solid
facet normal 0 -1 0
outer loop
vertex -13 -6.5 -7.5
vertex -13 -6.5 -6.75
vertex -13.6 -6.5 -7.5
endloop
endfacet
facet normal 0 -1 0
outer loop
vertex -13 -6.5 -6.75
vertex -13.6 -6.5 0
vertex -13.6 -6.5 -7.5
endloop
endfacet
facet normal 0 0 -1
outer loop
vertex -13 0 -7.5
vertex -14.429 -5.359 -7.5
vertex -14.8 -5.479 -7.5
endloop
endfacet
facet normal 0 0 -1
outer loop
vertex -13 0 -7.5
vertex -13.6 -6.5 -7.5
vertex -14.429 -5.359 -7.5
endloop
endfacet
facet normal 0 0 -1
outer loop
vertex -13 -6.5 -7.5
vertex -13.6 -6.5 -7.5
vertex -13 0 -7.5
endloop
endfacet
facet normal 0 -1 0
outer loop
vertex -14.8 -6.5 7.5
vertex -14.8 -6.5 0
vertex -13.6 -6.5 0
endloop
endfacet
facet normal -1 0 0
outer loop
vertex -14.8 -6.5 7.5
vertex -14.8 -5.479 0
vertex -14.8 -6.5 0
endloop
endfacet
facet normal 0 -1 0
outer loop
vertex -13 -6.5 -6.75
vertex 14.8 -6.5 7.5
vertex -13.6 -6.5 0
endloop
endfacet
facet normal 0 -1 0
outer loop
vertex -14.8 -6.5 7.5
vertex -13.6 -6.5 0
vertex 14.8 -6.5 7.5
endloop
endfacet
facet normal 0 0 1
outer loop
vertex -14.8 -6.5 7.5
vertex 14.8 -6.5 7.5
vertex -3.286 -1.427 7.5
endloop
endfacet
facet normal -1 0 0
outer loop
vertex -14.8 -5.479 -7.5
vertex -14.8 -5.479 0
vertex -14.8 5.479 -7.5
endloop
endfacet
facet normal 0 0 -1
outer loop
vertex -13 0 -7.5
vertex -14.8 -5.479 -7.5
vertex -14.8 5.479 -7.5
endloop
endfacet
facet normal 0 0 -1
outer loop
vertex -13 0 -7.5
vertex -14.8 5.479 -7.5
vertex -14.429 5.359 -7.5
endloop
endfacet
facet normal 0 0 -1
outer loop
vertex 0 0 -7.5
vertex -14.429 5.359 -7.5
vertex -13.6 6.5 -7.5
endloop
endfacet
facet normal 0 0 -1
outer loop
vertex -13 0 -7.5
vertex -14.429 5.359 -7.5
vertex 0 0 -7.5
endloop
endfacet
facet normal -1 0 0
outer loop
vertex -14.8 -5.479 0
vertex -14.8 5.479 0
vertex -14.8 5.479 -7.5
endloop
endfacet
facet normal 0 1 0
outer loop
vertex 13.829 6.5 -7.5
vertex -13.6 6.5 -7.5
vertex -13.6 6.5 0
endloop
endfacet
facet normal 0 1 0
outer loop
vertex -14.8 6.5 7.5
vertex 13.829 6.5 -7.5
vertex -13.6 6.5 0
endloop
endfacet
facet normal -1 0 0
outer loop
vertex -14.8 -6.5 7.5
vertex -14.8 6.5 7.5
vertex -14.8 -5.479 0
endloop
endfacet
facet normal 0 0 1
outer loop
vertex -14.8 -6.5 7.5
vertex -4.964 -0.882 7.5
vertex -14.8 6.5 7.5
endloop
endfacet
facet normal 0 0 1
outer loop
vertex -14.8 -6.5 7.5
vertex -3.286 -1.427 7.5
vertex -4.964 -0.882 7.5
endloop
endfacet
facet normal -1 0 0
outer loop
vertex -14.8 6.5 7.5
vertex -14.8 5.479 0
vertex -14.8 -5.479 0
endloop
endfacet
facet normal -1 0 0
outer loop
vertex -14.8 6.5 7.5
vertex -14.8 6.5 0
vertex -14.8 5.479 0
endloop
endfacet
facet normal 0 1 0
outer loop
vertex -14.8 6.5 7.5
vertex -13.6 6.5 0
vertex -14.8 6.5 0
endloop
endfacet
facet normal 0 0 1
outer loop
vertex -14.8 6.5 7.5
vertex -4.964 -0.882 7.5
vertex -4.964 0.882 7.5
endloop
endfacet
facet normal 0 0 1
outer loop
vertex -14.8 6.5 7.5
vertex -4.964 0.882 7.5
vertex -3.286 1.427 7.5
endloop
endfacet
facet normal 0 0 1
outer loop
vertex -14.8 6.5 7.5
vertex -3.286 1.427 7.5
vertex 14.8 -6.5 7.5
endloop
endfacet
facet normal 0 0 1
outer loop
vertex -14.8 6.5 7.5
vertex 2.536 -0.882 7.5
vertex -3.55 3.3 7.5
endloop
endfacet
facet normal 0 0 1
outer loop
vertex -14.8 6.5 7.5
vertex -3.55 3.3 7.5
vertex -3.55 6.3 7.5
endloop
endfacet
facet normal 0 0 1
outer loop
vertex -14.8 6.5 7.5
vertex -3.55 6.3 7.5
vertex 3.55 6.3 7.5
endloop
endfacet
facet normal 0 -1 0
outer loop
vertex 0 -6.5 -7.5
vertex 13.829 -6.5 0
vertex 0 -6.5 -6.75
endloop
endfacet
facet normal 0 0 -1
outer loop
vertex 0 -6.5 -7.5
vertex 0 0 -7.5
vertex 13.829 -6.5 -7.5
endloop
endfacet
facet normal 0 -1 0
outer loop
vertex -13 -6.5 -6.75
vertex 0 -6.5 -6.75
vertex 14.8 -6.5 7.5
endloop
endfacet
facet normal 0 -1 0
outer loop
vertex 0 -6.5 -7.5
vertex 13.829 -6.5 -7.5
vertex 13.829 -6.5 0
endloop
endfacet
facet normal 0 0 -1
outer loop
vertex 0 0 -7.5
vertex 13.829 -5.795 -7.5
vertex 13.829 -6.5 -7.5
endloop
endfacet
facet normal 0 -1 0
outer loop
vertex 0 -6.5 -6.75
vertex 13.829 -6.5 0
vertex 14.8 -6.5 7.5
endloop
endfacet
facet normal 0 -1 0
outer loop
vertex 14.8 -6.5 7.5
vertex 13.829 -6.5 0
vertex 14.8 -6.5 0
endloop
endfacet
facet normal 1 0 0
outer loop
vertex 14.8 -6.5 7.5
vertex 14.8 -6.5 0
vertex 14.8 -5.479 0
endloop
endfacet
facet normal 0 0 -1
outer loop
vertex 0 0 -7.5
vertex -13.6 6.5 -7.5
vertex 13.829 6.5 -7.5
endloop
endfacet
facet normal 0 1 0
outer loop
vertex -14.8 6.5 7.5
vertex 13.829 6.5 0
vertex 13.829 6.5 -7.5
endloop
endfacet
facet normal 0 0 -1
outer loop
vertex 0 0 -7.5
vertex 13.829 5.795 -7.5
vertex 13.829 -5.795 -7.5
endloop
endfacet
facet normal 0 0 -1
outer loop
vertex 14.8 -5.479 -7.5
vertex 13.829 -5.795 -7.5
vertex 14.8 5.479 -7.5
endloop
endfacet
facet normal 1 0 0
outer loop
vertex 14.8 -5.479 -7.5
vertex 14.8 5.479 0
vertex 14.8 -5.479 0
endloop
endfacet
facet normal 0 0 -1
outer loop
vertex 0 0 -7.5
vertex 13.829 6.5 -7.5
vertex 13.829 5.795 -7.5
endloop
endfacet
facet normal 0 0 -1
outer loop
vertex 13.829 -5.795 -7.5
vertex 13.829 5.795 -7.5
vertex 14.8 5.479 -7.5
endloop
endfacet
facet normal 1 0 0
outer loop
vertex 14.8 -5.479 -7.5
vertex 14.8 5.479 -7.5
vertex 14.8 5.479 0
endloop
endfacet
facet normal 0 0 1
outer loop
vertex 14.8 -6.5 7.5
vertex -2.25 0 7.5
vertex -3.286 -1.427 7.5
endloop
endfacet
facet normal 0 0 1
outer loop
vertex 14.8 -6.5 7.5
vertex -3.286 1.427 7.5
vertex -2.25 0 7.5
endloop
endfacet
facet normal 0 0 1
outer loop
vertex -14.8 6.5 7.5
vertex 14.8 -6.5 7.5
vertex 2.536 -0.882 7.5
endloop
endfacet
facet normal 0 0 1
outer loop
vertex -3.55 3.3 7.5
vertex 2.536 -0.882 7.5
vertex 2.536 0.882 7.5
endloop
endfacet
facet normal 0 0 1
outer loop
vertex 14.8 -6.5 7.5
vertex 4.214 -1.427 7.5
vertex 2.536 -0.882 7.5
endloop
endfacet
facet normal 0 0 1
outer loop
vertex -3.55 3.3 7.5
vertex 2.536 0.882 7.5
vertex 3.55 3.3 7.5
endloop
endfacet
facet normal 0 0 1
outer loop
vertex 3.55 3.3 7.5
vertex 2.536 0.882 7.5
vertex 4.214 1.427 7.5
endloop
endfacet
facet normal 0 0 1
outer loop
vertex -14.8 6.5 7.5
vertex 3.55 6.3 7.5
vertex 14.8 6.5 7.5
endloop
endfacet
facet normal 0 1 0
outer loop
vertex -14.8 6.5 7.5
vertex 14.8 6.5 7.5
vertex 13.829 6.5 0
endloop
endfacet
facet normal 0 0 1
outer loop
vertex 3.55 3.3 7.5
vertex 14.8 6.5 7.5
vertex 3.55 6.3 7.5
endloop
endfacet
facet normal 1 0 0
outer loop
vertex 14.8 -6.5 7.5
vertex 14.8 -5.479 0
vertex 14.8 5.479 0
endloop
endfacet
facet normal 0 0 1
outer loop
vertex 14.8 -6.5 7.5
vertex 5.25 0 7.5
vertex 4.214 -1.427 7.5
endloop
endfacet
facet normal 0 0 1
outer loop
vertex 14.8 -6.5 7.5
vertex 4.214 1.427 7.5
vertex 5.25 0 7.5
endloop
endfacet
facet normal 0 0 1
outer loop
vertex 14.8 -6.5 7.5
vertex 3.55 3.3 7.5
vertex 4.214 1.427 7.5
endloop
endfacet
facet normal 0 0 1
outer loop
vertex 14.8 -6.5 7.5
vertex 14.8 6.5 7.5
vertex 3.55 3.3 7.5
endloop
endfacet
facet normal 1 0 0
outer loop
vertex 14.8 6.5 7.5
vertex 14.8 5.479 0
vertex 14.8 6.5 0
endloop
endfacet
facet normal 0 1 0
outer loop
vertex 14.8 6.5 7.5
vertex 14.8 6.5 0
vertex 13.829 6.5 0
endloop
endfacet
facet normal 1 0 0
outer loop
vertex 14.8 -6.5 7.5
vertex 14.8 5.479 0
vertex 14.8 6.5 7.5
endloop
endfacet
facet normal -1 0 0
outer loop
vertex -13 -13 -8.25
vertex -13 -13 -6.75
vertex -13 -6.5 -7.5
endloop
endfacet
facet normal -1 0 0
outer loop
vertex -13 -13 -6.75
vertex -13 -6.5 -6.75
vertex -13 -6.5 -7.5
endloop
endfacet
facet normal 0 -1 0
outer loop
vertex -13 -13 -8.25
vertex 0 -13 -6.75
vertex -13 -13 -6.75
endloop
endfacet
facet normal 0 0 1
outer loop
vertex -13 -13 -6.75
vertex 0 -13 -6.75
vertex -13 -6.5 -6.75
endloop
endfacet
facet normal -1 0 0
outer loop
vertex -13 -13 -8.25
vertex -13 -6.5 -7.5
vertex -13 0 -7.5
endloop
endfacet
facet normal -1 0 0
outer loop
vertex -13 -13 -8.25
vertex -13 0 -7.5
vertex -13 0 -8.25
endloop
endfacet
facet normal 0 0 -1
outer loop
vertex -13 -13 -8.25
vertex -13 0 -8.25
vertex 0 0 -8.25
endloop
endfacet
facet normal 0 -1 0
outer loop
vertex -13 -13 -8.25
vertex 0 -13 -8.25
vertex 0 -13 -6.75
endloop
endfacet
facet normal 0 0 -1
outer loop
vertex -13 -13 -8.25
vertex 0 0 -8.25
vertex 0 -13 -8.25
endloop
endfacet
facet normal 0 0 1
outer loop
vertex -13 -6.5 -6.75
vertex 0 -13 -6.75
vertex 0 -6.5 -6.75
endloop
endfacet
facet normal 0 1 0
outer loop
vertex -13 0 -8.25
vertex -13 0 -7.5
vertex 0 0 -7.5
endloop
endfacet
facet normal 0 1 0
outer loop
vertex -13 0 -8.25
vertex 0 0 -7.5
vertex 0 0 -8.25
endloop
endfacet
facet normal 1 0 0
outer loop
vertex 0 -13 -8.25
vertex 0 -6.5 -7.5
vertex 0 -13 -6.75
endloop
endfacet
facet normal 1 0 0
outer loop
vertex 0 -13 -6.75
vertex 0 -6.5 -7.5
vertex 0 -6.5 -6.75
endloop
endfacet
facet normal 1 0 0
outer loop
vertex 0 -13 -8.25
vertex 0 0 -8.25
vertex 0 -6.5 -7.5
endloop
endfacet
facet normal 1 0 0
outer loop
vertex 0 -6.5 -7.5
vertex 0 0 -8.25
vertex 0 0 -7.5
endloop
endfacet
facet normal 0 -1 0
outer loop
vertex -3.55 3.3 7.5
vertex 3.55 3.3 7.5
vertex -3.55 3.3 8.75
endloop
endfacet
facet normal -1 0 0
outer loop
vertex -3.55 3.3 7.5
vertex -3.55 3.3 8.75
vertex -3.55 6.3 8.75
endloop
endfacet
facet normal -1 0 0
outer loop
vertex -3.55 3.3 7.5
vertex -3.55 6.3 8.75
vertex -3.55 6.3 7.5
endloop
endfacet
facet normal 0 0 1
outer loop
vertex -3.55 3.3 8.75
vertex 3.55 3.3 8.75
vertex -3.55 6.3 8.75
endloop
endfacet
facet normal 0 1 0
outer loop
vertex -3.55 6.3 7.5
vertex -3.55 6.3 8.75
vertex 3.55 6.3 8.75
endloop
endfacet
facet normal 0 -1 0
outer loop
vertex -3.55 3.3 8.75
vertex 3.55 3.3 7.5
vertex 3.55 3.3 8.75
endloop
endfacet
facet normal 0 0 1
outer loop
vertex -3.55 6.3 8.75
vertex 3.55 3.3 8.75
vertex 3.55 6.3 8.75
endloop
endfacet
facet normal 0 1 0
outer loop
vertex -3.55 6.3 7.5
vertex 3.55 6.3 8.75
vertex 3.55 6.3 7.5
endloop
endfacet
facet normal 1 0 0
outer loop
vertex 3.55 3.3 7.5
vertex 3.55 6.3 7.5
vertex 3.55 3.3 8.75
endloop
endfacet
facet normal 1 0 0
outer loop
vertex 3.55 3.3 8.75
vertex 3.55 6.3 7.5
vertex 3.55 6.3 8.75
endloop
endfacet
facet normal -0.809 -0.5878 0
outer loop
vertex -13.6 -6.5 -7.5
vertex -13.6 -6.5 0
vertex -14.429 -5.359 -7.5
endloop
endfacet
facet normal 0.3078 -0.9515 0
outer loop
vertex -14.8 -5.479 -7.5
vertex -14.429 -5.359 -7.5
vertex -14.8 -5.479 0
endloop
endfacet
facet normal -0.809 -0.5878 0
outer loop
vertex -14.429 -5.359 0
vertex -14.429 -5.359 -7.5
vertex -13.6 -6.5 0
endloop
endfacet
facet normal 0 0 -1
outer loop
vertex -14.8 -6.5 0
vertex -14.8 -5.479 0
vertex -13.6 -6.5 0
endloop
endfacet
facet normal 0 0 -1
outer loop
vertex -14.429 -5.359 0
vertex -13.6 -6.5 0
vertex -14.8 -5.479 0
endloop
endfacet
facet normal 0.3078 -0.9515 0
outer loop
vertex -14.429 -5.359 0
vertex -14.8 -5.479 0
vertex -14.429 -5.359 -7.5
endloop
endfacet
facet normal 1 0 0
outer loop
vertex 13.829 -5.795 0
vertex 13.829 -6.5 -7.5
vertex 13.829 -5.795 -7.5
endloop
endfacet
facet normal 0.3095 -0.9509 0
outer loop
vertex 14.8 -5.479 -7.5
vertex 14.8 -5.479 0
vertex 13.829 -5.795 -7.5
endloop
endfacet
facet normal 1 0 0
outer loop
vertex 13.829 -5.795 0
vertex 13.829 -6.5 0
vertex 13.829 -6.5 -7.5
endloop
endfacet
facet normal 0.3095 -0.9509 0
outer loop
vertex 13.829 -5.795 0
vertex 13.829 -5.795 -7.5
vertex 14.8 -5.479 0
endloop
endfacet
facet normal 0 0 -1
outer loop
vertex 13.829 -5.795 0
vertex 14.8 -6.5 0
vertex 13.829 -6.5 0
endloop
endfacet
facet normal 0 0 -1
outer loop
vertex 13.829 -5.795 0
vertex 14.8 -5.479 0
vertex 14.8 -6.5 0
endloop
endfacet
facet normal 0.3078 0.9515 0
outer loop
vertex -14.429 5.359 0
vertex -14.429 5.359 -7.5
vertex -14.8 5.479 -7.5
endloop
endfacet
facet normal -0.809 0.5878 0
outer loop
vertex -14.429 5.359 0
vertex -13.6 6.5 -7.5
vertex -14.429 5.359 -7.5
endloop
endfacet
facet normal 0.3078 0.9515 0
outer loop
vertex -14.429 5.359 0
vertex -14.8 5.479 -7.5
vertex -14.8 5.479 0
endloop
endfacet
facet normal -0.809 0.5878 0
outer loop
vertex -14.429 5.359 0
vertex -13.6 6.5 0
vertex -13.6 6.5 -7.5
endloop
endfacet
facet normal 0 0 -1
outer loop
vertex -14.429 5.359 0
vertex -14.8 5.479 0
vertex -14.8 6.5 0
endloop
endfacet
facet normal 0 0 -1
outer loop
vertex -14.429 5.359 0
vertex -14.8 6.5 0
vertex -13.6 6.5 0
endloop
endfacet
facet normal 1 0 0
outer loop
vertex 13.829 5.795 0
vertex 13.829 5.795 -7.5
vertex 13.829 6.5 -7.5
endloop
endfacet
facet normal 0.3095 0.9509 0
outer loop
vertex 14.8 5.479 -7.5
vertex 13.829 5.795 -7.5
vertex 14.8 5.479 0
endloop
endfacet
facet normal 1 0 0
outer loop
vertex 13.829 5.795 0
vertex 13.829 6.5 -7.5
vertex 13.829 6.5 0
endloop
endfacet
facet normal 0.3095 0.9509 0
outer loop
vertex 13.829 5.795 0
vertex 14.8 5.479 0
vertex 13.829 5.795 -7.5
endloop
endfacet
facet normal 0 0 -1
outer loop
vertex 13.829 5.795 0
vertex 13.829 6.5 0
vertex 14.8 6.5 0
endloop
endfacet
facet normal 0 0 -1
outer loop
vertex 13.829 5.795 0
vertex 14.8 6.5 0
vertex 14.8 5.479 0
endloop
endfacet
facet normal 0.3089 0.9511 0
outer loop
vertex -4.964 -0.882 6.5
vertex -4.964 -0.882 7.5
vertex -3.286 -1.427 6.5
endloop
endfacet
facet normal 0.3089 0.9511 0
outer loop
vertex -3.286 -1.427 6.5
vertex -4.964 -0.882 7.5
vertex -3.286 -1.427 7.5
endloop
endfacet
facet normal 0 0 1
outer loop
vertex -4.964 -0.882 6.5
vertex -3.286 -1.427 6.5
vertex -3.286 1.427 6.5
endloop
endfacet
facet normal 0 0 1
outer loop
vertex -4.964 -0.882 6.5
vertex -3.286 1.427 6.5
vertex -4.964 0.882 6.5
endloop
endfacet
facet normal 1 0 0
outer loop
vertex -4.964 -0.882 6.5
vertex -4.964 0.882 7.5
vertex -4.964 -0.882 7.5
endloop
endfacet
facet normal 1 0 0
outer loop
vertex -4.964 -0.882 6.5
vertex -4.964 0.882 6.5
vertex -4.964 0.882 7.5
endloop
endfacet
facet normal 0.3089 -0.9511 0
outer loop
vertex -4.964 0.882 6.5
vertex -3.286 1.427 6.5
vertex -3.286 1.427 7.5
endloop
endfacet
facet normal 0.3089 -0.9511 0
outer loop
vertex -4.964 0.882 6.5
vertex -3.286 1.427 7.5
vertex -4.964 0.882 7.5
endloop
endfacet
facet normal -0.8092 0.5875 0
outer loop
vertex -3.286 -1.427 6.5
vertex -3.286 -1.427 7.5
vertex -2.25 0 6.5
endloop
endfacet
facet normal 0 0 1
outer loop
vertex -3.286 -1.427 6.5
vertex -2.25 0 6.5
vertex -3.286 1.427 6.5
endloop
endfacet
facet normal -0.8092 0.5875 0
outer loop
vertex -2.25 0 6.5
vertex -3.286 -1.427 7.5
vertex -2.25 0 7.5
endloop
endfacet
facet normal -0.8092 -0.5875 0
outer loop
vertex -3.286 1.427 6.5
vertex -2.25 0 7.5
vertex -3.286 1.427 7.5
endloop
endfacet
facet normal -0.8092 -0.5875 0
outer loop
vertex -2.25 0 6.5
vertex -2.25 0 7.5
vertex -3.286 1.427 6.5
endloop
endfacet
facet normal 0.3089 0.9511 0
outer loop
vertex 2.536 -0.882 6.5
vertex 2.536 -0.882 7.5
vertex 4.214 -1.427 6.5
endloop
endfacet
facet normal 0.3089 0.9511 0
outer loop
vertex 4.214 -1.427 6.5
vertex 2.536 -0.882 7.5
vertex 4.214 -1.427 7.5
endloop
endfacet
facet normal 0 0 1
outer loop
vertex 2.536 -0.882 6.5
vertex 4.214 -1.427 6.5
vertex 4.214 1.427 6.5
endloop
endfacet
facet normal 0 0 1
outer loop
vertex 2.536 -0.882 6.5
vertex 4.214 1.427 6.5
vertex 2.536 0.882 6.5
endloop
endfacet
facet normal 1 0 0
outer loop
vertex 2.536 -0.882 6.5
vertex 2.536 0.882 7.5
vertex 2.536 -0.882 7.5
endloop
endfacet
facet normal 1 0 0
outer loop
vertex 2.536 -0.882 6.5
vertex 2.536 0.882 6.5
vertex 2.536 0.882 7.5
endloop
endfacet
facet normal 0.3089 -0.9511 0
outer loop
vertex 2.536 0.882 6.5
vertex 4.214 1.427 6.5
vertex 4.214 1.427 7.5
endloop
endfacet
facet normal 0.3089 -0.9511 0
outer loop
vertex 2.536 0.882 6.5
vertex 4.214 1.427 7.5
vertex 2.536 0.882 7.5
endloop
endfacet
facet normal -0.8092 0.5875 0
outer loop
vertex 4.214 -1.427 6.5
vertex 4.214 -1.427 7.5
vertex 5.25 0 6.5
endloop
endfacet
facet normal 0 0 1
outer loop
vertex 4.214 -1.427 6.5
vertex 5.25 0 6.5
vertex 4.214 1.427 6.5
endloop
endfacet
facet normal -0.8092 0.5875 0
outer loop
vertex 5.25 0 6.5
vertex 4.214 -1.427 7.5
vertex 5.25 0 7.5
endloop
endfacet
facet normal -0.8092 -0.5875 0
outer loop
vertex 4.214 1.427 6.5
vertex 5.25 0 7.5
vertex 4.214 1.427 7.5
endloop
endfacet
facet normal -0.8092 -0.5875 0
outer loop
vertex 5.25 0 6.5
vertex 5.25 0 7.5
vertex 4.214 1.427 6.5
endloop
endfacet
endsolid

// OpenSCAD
// Sharp GP2Y0D413K0F 距離センサ モデリング (単位: mm)

module gp2y0d413k0f() {
  difference() {
    union() {
      // 本体ケース
      cube([29.6, 13, 15], center = true);

      // コネクタ側PWB (厚みは仮)
      translate([-6.5, -6.5, -7.5]) cube([13, 13, 1.5], center = true);

      // レンズケース
      translate([0, 4.8, 7.5]) cube([7.1, 3, 2.5], center = true);
    }

    // ホール (取付穴)
    translate([-14.8, -6.5, -7.5]) cylinder(h=15, r=1.2, center=true);
    translate([14.8, -6.5, -7.5]) cylinder(h=15, r=1.2, center=true);
    translate([-14.8, 6.5, -7.5]) cylinder(h=15, r=1.2, center=true);
    translate([14.8, 6.5, -7.5]) cylinder(h=15, r=1.2, center=true);

    // LED穴 (仮)
    translate([-3.75, 0, 7.5]) cylinder(h=2, r=1.5, center = true);
    translate([3.75, 0, 7.5]) cylinder(h=2, r=1.5, center = true);

  }
}

gp2y0d413k0f();
